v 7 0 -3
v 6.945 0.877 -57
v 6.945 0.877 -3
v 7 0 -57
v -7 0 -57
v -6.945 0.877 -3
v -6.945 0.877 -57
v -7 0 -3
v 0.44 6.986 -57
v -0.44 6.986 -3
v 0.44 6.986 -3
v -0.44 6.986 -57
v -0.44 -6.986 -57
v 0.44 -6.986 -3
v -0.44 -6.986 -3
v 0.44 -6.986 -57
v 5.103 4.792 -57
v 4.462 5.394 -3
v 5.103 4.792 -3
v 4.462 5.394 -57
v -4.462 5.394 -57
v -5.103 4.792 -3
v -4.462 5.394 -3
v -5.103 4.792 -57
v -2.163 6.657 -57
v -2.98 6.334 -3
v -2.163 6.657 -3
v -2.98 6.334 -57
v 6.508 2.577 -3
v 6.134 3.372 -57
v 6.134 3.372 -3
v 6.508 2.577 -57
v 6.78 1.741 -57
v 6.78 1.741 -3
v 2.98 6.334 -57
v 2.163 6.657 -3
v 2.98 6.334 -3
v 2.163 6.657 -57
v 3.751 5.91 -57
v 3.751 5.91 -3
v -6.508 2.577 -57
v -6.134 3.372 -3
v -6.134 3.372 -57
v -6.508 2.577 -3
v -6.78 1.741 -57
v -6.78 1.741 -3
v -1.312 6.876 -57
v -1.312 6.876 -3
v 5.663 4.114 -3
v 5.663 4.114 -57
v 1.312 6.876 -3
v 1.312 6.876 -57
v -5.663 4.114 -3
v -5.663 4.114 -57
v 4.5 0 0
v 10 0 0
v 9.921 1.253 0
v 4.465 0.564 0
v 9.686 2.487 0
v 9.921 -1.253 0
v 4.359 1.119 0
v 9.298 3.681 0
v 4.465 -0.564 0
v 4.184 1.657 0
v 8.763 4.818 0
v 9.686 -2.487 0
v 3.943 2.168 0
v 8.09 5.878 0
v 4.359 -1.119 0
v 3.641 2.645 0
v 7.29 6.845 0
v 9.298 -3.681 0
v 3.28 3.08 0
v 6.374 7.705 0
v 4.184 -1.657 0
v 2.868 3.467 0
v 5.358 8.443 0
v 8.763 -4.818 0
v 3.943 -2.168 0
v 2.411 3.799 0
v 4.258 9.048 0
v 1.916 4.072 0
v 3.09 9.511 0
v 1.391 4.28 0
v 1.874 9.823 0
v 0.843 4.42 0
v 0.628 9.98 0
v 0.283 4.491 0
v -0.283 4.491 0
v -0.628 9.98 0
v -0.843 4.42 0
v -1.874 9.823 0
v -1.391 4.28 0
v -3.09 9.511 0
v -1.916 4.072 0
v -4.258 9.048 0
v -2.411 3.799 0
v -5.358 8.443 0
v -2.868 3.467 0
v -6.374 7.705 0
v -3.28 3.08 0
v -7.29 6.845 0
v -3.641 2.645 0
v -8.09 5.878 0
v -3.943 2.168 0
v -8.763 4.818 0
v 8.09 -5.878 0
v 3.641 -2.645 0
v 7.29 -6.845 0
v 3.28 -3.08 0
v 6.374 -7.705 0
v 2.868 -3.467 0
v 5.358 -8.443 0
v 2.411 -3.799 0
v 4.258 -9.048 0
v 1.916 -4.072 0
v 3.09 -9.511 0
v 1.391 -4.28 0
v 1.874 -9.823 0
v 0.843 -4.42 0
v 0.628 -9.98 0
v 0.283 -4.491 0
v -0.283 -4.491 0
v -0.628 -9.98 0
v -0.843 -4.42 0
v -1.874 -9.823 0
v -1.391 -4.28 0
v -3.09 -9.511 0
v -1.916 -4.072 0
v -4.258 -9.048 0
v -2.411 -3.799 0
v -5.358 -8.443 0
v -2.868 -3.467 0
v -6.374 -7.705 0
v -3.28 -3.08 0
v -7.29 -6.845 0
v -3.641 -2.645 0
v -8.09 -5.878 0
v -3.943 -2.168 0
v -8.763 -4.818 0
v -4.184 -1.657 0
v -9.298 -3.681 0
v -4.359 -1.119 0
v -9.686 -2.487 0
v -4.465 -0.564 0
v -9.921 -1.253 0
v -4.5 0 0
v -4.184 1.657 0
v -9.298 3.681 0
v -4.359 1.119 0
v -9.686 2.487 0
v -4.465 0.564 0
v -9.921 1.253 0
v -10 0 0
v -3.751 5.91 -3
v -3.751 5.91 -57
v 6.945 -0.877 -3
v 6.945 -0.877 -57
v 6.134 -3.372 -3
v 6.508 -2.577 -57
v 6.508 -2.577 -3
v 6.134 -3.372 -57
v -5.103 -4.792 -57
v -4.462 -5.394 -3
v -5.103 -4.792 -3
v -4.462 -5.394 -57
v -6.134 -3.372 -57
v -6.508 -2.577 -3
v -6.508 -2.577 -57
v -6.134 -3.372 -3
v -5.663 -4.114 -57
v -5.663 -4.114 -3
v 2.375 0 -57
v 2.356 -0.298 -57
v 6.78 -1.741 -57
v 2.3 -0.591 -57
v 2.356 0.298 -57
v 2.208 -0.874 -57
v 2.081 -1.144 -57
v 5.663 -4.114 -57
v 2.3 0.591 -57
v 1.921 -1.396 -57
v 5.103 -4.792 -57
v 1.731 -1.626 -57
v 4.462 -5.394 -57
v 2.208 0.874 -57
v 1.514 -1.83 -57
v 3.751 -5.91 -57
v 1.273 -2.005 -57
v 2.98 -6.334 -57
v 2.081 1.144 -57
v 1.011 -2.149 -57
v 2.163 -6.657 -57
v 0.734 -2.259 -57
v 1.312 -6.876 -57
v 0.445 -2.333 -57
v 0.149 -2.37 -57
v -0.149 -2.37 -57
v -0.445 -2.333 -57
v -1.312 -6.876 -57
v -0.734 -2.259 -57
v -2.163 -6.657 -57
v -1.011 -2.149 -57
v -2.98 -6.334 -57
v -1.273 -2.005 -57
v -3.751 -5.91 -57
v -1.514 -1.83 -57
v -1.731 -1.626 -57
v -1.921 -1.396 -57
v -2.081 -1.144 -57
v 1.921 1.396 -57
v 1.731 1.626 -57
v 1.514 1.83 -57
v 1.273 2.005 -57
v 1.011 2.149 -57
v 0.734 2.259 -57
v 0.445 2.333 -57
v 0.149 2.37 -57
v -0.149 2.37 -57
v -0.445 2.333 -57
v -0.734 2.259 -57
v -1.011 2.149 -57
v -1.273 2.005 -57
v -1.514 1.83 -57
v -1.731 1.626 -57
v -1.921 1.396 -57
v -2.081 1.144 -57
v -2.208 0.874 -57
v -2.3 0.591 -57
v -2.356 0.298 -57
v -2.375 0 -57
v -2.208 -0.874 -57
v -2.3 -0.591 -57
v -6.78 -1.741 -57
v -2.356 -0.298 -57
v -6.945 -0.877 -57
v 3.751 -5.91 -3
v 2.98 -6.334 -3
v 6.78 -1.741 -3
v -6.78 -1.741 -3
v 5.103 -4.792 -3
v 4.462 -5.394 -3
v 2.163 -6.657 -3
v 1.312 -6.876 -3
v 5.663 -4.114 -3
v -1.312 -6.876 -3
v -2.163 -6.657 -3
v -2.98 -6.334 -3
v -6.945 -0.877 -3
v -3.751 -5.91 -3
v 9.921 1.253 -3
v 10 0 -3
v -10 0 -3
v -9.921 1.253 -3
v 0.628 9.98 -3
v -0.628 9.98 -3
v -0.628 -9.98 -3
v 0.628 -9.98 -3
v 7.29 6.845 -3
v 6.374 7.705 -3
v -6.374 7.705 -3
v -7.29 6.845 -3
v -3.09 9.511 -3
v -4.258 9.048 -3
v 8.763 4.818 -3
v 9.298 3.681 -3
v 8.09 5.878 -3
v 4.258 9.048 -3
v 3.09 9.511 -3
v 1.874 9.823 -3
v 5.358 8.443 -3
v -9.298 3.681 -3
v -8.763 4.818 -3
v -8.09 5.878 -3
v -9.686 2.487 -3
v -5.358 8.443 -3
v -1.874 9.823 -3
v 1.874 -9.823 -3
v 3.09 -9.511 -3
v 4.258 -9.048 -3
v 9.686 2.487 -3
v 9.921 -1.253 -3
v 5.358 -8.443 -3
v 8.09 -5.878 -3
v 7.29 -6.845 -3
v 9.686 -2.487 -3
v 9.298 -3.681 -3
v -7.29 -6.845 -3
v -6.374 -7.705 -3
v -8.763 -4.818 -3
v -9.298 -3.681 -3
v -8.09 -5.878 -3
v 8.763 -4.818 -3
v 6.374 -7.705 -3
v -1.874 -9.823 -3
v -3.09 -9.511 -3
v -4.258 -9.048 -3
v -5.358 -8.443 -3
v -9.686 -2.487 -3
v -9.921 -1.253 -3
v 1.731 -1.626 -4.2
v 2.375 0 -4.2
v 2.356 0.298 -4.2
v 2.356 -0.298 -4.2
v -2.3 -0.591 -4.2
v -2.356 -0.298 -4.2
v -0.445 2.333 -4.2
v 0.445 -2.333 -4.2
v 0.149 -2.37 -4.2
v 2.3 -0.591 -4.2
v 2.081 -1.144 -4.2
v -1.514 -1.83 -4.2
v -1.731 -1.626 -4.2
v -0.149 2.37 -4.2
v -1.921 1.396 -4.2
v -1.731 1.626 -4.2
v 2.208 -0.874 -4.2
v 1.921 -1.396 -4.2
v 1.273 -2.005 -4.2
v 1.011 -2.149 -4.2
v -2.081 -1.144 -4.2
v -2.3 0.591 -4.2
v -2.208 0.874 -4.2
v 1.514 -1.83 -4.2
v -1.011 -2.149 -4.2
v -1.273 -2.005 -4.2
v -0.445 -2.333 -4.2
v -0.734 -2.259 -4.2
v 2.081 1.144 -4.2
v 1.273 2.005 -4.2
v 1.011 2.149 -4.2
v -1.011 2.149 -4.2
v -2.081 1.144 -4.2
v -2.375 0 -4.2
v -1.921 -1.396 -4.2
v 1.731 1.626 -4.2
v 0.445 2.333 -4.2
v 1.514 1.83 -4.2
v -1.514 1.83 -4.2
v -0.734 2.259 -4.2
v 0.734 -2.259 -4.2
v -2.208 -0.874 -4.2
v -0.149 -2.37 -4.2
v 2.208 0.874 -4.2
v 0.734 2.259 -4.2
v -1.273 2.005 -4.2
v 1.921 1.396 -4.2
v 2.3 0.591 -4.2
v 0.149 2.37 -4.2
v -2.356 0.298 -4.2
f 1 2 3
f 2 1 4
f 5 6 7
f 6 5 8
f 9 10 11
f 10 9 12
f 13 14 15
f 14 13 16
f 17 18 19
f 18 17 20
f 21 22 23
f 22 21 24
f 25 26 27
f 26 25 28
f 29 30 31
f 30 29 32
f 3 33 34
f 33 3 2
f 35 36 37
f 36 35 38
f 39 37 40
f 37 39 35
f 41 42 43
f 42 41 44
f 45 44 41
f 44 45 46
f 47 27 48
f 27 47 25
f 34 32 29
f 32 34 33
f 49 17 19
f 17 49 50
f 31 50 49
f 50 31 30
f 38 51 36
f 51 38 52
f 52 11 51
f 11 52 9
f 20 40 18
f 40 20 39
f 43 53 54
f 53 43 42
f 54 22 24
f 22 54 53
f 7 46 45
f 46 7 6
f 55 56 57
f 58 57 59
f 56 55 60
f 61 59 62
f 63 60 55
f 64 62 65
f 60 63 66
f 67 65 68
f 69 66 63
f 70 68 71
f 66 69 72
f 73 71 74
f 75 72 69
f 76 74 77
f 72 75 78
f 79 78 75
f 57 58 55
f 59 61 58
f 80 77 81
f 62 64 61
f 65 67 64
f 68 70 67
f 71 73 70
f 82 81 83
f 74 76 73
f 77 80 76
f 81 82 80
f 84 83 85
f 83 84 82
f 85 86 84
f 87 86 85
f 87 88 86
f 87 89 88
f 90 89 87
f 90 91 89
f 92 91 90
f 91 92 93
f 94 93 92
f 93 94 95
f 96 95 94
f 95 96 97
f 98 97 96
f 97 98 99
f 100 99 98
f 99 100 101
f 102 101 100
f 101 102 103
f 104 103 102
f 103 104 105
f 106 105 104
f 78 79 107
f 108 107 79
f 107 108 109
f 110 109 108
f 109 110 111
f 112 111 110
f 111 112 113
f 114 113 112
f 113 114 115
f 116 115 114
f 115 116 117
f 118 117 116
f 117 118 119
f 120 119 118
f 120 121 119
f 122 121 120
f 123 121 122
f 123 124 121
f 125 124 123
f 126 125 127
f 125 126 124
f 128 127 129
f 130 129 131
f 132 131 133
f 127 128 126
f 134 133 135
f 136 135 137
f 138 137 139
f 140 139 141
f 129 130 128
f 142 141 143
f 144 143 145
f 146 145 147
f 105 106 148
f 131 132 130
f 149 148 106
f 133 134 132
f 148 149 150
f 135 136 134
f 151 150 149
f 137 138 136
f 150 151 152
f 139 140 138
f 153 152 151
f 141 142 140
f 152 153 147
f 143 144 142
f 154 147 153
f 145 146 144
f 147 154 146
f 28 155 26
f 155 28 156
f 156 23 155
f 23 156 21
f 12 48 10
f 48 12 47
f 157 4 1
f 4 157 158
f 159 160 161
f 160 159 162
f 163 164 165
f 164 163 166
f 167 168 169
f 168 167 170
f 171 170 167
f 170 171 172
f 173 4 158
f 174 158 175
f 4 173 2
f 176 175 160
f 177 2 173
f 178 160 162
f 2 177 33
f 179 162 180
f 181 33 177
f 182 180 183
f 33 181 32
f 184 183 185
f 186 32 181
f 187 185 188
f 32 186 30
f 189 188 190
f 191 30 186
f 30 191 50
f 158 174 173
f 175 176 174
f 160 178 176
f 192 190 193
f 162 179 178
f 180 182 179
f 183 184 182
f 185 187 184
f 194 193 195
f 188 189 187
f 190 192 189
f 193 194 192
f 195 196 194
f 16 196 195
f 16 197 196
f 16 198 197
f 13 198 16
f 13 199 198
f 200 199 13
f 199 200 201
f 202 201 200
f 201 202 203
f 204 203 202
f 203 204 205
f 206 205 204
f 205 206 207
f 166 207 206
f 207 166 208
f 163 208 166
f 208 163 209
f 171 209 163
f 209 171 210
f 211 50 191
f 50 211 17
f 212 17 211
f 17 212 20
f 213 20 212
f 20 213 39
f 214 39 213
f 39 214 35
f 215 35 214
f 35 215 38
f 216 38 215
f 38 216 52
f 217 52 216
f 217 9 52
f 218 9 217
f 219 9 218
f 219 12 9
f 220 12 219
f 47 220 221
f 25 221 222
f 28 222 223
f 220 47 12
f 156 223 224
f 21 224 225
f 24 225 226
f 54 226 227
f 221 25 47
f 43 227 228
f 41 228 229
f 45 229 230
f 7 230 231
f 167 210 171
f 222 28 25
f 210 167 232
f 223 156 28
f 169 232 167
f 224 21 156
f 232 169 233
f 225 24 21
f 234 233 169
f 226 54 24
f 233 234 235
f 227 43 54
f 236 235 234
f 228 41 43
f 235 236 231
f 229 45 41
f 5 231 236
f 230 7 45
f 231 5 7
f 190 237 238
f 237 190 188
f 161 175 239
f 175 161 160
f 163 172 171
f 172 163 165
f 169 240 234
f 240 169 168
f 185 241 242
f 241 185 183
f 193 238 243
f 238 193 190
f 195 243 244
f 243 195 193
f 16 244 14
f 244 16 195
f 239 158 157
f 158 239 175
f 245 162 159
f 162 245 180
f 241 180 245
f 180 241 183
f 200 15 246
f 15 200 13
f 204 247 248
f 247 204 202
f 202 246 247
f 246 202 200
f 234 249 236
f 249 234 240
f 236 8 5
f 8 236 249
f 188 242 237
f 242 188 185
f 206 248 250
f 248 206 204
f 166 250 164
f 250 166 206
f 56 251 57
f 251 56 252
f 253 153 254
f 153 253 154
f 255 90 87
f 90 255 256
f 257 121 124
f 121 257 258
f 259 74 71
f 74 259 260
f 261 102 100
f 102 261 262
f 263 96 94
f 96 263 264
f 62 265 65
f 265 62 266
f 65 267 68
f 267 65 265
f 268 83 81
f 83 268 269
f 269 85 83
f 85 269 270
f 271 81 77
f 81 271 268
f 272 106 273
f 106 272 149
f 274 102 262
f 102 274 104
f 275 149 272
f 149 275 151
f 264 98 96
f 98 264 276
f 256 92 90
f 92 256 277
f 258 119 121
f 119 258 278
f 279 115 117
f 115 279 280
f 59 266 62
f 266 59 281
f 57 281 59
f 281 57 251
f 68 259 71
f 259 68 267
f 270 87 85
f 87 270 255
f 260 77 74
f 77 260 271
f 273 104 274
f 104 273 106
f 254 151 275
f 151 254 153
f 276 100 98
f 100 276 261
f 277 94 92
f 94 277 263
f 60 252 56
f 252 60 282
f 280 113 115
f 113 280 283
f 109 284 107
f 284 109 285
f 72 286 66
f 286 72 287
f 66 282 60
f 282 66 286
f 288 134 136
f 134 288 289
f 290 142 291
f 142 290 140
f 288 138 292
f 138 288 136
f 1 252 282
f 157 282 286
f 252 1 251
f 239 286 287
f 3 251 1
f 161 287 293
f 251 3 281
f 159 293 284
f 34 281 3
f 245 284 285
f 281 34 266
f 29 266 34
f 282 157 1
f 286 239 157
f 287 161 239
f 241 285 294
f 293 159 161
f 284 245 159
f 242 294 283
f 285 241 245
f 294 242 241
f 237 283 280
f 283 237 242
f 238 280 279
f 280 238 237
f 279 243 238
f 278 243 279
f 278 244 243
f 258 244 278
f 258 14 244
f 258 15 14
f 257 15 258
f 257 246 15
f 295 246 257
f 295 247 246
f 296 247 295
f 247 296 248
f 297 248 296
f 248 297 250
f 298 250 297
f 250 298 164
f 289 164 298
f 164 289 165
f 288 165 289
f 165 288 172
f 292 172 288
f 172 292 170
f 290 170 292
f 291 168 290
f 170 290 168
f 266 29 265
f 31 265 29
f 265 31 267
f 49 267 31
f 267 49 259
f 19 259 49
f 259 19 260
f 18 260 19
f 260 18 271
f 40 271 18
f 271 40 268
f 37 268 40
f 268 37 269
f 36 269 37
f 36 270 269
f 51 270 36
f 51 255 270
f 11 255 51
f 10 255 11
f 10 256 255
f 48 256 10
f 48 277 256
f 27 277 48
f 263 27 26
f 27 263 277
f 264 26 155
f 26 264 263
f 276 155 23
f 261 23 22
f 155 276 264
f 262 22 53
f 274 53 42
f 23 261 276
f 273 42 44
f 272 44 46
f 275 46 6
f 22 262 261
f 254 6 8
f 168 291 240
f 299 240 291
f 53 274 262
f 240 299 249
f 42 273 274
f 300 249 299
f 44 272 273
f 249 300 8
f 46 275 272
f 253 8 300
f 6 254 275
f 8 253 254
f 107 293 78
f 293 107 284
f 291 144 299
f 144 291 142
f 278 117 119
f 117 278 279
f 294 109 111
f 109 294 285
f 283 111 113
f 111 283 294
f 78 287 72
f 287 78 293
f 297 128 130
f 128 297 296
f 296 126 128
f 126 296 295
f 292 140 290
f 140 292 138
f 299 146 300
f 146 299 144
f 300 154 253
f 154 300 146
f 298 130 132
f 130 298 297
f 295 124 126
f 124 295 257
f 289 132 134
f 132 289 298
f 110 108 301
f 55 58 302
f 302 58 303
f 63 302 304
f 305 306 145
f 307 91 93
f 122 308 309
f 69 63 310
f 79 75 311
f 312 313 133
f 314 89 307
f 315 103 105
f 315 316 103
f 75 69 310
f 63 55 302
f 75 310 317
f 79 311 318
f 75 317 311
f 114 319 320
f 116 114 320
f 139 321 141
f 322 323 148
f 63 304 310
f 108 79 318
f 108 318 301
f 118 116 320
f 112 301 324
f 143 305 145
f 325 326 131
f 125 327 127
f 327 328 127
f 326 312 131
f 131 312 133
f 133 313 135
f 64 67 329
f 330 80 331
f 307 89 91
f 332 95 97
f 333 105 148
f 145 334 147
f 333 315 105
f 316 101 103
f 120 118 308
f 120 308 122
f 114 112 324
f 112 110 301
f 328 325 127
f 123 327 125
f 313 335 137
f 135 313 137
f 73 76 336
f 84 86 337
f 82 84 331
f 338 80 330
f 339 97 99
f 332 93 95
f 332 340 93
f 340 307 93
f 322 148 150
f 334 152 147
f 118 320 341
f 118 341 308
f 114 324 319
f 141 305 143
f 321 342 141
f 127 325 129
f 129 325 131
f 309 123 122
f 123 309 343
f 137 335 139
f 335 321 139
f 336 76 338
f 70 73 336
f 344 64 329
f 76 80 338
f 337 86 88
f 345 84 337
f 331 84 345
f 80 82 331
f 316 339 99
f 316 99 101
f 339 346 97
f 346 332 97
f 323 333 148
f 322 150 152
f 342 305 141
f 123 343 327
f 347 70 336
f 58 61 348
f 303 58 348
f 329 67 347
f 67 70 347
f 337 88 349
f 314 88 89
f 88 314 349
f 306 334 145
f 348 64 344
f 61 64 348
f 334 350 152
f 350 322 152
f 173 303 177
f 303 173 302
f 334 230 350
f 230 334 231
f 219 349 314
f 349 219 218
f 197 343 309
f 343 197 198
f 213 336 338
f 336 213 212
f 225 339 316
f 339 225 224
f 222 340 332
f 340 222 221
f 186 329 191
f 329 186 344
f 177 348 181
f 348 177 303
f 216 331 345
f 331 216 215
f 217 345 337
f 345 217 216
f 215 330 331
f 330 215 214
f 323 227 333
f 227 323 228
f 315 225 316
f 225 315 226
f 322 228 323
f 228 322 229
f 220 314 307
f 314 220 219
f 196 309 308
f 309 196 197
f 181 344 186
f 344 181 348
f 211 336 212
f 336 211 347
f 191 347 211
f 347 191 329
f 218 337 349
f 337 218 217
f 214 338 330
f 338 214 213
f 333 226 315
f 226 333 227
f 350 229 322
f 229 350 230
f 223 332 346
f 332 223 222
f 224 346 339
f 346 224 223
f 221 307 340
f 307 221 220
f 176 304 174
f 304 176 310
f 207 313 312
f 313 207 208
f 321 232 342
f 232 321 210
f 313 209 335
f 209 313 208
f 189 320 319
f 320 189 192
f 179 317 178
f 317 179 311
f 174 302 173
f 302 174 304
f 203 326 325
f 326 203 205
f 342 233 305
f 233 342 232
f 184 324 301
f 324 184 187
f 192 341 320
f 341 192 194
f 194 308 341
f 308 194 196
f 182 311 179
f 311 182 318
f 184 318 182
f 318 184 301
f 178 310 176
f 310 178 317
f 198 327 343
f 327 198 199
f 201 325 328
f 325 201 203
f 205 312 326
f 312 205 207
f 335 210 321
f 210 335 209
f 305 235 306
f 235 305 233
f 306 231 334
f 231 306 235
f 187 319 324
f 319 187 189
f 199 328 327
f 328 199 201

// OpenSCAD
$fn = 50;


difference() {
	union() {
		translate(v = [0, 0, -57.0000000000]) {
			cylinder(h = 57, r = 7.0000000000);
		}
		translate(v = [0, 0, -3.0000000000]) {
			cylinder(h = 3, r = 10.0000000000);
		}
	}
	union() {
		translate(v = [0, 0, 0]) {
			rotate(a = [0, 0, 0]) {
				difference() {
					union() {
						#translate(v = [0, 0, -57.0000000000]) {
							cylinder(h = 57, r = 2.2500000000);
						}
						#translate(v = [0, 0, -4.2000000000]) {
							cylinder(h = 4.2000000000, r1 = 2.3750000000, r2 = 4.5000000000);
						}
						#translate(v = [0, 0, -57.0000000000]) {
							cylinder(h = 57, r = 2.3750000000);
						}
						#translate(v = [0, 0, -57.0000000000]) {
							cylinder(h = 57, r = 2.2500000000);
						}
					}
					union();
				}
			}
		}
	}
}
